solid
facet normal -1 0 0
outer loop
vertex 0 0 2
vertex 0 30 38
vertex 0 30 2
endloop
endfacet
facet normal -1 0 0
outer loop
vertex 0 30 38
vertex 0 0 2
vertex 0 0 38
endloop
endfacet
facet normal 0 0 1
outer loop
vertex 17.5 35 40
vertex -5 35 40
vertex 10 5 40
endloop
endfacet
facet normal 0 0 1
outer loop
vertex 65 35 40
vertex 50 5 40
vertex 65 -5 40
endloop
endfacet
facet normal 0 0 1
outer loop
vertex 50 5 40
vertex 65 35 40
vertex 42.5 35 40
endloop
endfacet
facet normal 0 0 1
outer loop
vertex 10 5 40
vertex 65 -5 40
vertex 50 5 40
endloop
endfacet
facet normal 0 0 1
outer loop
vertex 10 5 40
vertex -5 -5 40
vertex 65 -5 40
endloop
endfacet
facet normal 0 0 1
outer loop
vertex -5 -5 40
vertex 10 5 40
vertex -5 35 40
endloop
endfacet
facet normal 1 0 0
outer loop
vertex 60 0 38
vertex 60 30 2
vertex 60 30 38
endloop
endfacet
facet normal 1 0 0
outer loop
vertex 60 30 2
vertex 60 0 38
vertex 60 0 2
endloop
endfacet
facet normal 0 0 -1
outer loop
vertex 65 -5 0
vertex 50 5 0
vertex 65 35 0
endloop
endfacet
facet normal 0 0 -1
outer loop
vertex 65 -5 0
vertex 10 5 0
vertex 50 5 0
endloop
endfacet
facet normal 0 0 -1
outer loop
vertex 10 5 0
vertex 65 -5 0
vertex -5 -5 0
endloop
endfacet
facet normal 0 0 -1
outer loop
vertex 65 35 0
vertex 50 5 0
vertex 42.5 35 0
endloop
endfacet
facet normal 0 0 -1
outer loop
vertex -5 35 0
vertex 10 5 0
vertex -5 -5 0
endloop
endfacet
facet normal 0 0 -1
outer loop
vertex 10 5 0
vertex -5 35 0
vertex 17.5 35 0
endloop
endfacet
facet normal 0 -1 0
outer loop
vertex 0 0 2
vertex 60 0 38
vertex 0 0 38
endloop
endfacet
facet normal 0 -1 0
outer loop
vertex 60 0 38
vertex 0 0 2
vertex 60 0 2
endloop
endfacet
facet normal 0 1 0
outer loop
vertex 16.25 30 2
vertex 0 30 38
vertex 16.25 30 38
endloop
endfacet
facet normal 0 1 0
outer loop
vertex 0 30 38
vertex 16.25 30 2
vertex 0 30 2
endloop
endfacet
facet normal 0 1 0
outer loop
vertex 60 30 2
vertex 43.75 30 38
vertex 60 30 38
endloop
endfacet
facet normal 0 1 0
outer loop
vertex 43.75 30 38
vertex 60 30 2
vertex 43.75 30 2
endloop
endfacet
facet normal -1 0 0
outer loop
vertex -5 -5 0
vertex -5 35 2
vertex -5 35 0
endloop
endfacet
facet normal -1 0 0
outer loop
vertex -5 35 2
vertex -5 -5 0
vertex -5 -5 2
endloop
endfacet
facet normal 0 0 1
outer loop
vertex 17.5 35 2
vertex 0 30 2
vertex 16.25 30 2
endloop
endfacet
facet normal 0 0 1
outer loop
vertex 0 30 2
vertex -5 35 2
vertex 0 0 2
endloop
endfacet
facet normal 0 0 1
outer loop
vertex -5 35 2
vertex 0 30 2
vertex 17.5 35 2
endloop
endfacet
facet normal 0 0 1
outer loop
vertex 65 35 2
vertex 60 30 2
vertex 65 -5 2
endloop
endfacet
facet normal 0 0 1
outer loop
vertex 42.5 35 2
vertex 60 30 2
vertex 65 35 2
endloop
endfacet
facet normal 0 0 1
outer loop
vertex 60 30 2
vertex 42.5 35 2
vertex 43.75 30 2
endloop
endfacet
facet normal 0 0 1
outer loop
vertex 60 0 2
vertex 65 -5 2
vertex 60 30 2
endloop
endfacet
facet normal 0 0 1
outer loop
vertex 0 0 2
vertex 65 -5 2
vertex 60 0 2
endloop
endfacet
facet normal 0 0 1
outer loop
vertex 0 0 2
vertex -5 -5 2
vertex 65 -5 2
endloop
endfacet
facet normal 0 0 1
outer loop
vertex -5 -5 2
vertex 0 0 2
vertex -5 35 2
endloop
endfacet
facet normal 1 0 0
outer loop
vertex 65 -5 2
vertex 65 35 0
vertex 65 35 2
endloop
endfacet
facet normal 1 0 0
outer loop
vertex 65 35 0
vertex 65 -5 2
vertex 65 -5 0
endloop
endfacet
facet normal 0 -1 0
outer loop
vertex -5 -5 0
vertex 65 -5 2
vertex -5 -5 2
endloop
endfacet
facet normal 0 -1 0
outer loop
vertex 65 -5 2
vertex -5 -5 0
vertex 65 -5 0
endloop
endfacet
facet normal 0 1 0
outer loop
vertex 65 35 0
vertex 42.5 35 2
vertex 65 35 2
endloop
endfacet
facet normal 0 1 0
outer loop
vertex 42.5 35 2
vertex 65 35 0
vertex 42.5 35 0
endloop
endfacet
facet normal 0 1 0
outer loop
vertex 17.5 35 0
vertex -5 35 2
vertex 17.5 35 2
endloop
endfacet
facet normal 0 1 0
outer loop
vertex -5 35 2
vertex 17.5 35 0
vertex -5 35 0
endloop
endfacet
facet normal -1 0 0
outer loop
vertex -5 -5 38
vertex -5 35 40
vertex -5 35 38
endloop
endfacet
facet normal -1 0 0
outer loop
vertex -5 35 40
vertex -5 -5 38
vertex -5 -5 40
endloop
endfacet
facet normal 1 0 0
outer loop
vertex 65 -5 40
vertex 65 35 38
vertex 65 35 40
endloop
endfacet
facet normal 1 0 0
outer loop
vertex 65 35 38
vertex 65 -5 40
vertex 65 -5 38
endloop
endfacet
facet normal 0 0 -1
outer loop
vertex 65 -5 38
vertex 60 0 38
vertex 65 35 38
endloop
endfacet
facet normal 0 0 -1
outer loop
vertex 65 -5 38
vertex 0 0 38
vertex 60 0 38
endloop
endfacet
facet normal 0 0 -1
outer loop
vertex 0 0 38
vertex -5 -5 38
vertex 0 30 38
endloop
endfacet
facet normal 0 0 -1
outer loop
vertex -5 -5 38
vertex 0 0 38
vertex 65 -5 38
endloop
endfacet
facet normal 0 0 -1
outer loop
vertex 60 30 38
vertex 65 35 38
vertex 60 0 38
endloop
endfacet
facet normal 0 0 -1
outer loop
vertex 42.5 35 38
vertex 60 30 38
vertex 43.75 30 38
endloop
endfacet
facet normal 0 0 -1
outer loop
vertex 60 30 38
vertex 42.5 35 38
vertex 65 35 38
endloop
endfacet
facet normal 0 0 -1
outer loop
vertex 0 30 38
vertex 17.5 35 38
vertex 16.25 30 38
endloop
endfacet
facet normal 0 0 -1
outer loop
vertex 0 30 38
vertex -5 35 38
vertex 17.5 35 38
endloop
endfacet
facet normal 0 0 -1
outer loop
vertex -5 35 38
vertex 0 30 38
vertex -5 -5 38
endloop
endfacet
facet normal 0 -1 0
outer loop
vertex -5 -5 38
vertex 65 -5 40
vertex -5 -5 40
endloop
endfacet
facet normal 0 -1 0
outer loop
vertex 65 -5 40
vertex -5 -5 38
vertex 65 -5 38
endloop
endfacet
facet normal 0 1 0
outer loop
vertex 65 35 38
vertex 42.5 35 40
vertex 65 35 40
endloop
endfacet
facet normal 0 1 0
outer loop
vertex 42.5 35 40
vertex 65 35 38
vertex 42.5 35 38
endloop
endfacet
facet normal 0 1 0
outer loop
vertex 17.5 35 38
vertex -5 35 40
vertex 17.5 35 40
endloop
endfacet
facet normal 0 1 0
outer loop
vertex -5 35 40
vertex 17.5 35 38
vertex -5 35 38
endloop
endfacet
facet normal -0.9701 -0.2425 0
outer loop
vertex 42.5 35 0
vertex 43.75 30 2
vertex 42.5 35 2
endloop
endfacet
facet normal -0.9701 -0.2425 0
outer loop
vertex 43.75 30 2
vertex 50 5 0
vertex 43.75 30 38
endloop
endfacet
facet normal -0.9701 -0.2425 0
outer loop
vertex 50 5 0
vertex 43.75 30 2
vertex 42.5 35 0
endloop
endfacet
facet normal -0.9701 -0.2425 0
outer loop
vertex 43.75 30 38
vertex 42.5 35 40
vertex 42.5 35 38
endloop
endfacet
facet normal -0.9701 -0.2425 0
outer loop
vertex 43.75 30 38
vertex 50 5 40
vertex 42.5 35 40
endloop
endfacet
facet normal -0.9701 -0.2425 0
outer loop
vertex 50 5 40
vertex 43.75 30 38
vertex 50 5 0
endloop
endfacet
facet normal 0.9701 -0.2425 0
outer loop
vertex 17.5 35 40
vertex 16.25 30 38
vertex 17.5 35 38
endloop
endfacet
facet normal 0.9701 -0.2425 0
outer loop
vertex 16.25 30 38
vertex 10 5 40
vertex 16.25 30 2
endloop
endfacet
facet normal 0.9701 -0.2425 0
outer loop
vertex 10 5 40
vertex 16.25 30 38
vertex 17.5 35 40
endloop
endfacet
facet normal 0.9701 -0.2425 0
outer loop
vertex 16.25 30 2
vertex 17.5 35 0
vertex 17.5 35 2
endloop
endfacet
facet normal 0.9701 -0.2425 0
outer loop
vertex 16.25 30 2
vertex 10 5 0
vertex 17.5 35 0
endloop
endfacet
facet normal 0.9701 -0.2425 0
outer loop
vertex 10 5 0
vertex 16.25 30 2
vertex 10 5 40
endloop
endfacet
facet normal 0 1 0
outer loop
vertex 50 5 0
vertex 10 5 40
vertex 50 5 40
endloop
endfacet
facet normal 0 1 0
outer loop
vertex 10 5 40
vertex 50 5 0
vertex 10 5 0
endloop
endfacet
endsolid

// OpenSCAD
// Parameters
outer_length = 60;
outer_width = 30;
outer_height = 40;
flange_thickness = 2;
flange_extension = 5;

inner_top_length = 40;
inner_top_width = 20;
inner_bottom_length = 20;
inner_bottom_width = 10;
inner_height = outer_height;

// Main block with flanges
module tapered_hollow_block() {
    difference() {
        // Outer block with flanges
        union() {
            // Main body
            cube([outer_length, outer_width, outer_height], center=false);
            
            // Bottom flange
            translate([-flange_extension, -flange_extension, 0])
                cube([outer_length + 2*flange_extension, outer_width + 2*flange_extension, flange_thickness]);

            // Top flange
            translate([-flange_extension, -flange_extension, outer_height - flange_thickness])
                cube([outer_length + 2*flange_extension, outer_width + 2*flange_extension, flange_thickness]);
        }

        // Tapered inner cavity
        translate([(outer_length - inner_top_length)/2, (outer_width - inner_top_width)/2, 0])
            linear_extrude(height=inner_height)
                polygon(points=[
                    [0, 0],
                    [inner_top_length, 0],
                    [inner_bottom_length + (inner_top_length - inner_bottom_length)/2, inner_height],
                    [(inner_top_length - inner_bottom_length)/2, inner_height]
                ]);
    }
}

// Render the model
tapered_hollow_block();
